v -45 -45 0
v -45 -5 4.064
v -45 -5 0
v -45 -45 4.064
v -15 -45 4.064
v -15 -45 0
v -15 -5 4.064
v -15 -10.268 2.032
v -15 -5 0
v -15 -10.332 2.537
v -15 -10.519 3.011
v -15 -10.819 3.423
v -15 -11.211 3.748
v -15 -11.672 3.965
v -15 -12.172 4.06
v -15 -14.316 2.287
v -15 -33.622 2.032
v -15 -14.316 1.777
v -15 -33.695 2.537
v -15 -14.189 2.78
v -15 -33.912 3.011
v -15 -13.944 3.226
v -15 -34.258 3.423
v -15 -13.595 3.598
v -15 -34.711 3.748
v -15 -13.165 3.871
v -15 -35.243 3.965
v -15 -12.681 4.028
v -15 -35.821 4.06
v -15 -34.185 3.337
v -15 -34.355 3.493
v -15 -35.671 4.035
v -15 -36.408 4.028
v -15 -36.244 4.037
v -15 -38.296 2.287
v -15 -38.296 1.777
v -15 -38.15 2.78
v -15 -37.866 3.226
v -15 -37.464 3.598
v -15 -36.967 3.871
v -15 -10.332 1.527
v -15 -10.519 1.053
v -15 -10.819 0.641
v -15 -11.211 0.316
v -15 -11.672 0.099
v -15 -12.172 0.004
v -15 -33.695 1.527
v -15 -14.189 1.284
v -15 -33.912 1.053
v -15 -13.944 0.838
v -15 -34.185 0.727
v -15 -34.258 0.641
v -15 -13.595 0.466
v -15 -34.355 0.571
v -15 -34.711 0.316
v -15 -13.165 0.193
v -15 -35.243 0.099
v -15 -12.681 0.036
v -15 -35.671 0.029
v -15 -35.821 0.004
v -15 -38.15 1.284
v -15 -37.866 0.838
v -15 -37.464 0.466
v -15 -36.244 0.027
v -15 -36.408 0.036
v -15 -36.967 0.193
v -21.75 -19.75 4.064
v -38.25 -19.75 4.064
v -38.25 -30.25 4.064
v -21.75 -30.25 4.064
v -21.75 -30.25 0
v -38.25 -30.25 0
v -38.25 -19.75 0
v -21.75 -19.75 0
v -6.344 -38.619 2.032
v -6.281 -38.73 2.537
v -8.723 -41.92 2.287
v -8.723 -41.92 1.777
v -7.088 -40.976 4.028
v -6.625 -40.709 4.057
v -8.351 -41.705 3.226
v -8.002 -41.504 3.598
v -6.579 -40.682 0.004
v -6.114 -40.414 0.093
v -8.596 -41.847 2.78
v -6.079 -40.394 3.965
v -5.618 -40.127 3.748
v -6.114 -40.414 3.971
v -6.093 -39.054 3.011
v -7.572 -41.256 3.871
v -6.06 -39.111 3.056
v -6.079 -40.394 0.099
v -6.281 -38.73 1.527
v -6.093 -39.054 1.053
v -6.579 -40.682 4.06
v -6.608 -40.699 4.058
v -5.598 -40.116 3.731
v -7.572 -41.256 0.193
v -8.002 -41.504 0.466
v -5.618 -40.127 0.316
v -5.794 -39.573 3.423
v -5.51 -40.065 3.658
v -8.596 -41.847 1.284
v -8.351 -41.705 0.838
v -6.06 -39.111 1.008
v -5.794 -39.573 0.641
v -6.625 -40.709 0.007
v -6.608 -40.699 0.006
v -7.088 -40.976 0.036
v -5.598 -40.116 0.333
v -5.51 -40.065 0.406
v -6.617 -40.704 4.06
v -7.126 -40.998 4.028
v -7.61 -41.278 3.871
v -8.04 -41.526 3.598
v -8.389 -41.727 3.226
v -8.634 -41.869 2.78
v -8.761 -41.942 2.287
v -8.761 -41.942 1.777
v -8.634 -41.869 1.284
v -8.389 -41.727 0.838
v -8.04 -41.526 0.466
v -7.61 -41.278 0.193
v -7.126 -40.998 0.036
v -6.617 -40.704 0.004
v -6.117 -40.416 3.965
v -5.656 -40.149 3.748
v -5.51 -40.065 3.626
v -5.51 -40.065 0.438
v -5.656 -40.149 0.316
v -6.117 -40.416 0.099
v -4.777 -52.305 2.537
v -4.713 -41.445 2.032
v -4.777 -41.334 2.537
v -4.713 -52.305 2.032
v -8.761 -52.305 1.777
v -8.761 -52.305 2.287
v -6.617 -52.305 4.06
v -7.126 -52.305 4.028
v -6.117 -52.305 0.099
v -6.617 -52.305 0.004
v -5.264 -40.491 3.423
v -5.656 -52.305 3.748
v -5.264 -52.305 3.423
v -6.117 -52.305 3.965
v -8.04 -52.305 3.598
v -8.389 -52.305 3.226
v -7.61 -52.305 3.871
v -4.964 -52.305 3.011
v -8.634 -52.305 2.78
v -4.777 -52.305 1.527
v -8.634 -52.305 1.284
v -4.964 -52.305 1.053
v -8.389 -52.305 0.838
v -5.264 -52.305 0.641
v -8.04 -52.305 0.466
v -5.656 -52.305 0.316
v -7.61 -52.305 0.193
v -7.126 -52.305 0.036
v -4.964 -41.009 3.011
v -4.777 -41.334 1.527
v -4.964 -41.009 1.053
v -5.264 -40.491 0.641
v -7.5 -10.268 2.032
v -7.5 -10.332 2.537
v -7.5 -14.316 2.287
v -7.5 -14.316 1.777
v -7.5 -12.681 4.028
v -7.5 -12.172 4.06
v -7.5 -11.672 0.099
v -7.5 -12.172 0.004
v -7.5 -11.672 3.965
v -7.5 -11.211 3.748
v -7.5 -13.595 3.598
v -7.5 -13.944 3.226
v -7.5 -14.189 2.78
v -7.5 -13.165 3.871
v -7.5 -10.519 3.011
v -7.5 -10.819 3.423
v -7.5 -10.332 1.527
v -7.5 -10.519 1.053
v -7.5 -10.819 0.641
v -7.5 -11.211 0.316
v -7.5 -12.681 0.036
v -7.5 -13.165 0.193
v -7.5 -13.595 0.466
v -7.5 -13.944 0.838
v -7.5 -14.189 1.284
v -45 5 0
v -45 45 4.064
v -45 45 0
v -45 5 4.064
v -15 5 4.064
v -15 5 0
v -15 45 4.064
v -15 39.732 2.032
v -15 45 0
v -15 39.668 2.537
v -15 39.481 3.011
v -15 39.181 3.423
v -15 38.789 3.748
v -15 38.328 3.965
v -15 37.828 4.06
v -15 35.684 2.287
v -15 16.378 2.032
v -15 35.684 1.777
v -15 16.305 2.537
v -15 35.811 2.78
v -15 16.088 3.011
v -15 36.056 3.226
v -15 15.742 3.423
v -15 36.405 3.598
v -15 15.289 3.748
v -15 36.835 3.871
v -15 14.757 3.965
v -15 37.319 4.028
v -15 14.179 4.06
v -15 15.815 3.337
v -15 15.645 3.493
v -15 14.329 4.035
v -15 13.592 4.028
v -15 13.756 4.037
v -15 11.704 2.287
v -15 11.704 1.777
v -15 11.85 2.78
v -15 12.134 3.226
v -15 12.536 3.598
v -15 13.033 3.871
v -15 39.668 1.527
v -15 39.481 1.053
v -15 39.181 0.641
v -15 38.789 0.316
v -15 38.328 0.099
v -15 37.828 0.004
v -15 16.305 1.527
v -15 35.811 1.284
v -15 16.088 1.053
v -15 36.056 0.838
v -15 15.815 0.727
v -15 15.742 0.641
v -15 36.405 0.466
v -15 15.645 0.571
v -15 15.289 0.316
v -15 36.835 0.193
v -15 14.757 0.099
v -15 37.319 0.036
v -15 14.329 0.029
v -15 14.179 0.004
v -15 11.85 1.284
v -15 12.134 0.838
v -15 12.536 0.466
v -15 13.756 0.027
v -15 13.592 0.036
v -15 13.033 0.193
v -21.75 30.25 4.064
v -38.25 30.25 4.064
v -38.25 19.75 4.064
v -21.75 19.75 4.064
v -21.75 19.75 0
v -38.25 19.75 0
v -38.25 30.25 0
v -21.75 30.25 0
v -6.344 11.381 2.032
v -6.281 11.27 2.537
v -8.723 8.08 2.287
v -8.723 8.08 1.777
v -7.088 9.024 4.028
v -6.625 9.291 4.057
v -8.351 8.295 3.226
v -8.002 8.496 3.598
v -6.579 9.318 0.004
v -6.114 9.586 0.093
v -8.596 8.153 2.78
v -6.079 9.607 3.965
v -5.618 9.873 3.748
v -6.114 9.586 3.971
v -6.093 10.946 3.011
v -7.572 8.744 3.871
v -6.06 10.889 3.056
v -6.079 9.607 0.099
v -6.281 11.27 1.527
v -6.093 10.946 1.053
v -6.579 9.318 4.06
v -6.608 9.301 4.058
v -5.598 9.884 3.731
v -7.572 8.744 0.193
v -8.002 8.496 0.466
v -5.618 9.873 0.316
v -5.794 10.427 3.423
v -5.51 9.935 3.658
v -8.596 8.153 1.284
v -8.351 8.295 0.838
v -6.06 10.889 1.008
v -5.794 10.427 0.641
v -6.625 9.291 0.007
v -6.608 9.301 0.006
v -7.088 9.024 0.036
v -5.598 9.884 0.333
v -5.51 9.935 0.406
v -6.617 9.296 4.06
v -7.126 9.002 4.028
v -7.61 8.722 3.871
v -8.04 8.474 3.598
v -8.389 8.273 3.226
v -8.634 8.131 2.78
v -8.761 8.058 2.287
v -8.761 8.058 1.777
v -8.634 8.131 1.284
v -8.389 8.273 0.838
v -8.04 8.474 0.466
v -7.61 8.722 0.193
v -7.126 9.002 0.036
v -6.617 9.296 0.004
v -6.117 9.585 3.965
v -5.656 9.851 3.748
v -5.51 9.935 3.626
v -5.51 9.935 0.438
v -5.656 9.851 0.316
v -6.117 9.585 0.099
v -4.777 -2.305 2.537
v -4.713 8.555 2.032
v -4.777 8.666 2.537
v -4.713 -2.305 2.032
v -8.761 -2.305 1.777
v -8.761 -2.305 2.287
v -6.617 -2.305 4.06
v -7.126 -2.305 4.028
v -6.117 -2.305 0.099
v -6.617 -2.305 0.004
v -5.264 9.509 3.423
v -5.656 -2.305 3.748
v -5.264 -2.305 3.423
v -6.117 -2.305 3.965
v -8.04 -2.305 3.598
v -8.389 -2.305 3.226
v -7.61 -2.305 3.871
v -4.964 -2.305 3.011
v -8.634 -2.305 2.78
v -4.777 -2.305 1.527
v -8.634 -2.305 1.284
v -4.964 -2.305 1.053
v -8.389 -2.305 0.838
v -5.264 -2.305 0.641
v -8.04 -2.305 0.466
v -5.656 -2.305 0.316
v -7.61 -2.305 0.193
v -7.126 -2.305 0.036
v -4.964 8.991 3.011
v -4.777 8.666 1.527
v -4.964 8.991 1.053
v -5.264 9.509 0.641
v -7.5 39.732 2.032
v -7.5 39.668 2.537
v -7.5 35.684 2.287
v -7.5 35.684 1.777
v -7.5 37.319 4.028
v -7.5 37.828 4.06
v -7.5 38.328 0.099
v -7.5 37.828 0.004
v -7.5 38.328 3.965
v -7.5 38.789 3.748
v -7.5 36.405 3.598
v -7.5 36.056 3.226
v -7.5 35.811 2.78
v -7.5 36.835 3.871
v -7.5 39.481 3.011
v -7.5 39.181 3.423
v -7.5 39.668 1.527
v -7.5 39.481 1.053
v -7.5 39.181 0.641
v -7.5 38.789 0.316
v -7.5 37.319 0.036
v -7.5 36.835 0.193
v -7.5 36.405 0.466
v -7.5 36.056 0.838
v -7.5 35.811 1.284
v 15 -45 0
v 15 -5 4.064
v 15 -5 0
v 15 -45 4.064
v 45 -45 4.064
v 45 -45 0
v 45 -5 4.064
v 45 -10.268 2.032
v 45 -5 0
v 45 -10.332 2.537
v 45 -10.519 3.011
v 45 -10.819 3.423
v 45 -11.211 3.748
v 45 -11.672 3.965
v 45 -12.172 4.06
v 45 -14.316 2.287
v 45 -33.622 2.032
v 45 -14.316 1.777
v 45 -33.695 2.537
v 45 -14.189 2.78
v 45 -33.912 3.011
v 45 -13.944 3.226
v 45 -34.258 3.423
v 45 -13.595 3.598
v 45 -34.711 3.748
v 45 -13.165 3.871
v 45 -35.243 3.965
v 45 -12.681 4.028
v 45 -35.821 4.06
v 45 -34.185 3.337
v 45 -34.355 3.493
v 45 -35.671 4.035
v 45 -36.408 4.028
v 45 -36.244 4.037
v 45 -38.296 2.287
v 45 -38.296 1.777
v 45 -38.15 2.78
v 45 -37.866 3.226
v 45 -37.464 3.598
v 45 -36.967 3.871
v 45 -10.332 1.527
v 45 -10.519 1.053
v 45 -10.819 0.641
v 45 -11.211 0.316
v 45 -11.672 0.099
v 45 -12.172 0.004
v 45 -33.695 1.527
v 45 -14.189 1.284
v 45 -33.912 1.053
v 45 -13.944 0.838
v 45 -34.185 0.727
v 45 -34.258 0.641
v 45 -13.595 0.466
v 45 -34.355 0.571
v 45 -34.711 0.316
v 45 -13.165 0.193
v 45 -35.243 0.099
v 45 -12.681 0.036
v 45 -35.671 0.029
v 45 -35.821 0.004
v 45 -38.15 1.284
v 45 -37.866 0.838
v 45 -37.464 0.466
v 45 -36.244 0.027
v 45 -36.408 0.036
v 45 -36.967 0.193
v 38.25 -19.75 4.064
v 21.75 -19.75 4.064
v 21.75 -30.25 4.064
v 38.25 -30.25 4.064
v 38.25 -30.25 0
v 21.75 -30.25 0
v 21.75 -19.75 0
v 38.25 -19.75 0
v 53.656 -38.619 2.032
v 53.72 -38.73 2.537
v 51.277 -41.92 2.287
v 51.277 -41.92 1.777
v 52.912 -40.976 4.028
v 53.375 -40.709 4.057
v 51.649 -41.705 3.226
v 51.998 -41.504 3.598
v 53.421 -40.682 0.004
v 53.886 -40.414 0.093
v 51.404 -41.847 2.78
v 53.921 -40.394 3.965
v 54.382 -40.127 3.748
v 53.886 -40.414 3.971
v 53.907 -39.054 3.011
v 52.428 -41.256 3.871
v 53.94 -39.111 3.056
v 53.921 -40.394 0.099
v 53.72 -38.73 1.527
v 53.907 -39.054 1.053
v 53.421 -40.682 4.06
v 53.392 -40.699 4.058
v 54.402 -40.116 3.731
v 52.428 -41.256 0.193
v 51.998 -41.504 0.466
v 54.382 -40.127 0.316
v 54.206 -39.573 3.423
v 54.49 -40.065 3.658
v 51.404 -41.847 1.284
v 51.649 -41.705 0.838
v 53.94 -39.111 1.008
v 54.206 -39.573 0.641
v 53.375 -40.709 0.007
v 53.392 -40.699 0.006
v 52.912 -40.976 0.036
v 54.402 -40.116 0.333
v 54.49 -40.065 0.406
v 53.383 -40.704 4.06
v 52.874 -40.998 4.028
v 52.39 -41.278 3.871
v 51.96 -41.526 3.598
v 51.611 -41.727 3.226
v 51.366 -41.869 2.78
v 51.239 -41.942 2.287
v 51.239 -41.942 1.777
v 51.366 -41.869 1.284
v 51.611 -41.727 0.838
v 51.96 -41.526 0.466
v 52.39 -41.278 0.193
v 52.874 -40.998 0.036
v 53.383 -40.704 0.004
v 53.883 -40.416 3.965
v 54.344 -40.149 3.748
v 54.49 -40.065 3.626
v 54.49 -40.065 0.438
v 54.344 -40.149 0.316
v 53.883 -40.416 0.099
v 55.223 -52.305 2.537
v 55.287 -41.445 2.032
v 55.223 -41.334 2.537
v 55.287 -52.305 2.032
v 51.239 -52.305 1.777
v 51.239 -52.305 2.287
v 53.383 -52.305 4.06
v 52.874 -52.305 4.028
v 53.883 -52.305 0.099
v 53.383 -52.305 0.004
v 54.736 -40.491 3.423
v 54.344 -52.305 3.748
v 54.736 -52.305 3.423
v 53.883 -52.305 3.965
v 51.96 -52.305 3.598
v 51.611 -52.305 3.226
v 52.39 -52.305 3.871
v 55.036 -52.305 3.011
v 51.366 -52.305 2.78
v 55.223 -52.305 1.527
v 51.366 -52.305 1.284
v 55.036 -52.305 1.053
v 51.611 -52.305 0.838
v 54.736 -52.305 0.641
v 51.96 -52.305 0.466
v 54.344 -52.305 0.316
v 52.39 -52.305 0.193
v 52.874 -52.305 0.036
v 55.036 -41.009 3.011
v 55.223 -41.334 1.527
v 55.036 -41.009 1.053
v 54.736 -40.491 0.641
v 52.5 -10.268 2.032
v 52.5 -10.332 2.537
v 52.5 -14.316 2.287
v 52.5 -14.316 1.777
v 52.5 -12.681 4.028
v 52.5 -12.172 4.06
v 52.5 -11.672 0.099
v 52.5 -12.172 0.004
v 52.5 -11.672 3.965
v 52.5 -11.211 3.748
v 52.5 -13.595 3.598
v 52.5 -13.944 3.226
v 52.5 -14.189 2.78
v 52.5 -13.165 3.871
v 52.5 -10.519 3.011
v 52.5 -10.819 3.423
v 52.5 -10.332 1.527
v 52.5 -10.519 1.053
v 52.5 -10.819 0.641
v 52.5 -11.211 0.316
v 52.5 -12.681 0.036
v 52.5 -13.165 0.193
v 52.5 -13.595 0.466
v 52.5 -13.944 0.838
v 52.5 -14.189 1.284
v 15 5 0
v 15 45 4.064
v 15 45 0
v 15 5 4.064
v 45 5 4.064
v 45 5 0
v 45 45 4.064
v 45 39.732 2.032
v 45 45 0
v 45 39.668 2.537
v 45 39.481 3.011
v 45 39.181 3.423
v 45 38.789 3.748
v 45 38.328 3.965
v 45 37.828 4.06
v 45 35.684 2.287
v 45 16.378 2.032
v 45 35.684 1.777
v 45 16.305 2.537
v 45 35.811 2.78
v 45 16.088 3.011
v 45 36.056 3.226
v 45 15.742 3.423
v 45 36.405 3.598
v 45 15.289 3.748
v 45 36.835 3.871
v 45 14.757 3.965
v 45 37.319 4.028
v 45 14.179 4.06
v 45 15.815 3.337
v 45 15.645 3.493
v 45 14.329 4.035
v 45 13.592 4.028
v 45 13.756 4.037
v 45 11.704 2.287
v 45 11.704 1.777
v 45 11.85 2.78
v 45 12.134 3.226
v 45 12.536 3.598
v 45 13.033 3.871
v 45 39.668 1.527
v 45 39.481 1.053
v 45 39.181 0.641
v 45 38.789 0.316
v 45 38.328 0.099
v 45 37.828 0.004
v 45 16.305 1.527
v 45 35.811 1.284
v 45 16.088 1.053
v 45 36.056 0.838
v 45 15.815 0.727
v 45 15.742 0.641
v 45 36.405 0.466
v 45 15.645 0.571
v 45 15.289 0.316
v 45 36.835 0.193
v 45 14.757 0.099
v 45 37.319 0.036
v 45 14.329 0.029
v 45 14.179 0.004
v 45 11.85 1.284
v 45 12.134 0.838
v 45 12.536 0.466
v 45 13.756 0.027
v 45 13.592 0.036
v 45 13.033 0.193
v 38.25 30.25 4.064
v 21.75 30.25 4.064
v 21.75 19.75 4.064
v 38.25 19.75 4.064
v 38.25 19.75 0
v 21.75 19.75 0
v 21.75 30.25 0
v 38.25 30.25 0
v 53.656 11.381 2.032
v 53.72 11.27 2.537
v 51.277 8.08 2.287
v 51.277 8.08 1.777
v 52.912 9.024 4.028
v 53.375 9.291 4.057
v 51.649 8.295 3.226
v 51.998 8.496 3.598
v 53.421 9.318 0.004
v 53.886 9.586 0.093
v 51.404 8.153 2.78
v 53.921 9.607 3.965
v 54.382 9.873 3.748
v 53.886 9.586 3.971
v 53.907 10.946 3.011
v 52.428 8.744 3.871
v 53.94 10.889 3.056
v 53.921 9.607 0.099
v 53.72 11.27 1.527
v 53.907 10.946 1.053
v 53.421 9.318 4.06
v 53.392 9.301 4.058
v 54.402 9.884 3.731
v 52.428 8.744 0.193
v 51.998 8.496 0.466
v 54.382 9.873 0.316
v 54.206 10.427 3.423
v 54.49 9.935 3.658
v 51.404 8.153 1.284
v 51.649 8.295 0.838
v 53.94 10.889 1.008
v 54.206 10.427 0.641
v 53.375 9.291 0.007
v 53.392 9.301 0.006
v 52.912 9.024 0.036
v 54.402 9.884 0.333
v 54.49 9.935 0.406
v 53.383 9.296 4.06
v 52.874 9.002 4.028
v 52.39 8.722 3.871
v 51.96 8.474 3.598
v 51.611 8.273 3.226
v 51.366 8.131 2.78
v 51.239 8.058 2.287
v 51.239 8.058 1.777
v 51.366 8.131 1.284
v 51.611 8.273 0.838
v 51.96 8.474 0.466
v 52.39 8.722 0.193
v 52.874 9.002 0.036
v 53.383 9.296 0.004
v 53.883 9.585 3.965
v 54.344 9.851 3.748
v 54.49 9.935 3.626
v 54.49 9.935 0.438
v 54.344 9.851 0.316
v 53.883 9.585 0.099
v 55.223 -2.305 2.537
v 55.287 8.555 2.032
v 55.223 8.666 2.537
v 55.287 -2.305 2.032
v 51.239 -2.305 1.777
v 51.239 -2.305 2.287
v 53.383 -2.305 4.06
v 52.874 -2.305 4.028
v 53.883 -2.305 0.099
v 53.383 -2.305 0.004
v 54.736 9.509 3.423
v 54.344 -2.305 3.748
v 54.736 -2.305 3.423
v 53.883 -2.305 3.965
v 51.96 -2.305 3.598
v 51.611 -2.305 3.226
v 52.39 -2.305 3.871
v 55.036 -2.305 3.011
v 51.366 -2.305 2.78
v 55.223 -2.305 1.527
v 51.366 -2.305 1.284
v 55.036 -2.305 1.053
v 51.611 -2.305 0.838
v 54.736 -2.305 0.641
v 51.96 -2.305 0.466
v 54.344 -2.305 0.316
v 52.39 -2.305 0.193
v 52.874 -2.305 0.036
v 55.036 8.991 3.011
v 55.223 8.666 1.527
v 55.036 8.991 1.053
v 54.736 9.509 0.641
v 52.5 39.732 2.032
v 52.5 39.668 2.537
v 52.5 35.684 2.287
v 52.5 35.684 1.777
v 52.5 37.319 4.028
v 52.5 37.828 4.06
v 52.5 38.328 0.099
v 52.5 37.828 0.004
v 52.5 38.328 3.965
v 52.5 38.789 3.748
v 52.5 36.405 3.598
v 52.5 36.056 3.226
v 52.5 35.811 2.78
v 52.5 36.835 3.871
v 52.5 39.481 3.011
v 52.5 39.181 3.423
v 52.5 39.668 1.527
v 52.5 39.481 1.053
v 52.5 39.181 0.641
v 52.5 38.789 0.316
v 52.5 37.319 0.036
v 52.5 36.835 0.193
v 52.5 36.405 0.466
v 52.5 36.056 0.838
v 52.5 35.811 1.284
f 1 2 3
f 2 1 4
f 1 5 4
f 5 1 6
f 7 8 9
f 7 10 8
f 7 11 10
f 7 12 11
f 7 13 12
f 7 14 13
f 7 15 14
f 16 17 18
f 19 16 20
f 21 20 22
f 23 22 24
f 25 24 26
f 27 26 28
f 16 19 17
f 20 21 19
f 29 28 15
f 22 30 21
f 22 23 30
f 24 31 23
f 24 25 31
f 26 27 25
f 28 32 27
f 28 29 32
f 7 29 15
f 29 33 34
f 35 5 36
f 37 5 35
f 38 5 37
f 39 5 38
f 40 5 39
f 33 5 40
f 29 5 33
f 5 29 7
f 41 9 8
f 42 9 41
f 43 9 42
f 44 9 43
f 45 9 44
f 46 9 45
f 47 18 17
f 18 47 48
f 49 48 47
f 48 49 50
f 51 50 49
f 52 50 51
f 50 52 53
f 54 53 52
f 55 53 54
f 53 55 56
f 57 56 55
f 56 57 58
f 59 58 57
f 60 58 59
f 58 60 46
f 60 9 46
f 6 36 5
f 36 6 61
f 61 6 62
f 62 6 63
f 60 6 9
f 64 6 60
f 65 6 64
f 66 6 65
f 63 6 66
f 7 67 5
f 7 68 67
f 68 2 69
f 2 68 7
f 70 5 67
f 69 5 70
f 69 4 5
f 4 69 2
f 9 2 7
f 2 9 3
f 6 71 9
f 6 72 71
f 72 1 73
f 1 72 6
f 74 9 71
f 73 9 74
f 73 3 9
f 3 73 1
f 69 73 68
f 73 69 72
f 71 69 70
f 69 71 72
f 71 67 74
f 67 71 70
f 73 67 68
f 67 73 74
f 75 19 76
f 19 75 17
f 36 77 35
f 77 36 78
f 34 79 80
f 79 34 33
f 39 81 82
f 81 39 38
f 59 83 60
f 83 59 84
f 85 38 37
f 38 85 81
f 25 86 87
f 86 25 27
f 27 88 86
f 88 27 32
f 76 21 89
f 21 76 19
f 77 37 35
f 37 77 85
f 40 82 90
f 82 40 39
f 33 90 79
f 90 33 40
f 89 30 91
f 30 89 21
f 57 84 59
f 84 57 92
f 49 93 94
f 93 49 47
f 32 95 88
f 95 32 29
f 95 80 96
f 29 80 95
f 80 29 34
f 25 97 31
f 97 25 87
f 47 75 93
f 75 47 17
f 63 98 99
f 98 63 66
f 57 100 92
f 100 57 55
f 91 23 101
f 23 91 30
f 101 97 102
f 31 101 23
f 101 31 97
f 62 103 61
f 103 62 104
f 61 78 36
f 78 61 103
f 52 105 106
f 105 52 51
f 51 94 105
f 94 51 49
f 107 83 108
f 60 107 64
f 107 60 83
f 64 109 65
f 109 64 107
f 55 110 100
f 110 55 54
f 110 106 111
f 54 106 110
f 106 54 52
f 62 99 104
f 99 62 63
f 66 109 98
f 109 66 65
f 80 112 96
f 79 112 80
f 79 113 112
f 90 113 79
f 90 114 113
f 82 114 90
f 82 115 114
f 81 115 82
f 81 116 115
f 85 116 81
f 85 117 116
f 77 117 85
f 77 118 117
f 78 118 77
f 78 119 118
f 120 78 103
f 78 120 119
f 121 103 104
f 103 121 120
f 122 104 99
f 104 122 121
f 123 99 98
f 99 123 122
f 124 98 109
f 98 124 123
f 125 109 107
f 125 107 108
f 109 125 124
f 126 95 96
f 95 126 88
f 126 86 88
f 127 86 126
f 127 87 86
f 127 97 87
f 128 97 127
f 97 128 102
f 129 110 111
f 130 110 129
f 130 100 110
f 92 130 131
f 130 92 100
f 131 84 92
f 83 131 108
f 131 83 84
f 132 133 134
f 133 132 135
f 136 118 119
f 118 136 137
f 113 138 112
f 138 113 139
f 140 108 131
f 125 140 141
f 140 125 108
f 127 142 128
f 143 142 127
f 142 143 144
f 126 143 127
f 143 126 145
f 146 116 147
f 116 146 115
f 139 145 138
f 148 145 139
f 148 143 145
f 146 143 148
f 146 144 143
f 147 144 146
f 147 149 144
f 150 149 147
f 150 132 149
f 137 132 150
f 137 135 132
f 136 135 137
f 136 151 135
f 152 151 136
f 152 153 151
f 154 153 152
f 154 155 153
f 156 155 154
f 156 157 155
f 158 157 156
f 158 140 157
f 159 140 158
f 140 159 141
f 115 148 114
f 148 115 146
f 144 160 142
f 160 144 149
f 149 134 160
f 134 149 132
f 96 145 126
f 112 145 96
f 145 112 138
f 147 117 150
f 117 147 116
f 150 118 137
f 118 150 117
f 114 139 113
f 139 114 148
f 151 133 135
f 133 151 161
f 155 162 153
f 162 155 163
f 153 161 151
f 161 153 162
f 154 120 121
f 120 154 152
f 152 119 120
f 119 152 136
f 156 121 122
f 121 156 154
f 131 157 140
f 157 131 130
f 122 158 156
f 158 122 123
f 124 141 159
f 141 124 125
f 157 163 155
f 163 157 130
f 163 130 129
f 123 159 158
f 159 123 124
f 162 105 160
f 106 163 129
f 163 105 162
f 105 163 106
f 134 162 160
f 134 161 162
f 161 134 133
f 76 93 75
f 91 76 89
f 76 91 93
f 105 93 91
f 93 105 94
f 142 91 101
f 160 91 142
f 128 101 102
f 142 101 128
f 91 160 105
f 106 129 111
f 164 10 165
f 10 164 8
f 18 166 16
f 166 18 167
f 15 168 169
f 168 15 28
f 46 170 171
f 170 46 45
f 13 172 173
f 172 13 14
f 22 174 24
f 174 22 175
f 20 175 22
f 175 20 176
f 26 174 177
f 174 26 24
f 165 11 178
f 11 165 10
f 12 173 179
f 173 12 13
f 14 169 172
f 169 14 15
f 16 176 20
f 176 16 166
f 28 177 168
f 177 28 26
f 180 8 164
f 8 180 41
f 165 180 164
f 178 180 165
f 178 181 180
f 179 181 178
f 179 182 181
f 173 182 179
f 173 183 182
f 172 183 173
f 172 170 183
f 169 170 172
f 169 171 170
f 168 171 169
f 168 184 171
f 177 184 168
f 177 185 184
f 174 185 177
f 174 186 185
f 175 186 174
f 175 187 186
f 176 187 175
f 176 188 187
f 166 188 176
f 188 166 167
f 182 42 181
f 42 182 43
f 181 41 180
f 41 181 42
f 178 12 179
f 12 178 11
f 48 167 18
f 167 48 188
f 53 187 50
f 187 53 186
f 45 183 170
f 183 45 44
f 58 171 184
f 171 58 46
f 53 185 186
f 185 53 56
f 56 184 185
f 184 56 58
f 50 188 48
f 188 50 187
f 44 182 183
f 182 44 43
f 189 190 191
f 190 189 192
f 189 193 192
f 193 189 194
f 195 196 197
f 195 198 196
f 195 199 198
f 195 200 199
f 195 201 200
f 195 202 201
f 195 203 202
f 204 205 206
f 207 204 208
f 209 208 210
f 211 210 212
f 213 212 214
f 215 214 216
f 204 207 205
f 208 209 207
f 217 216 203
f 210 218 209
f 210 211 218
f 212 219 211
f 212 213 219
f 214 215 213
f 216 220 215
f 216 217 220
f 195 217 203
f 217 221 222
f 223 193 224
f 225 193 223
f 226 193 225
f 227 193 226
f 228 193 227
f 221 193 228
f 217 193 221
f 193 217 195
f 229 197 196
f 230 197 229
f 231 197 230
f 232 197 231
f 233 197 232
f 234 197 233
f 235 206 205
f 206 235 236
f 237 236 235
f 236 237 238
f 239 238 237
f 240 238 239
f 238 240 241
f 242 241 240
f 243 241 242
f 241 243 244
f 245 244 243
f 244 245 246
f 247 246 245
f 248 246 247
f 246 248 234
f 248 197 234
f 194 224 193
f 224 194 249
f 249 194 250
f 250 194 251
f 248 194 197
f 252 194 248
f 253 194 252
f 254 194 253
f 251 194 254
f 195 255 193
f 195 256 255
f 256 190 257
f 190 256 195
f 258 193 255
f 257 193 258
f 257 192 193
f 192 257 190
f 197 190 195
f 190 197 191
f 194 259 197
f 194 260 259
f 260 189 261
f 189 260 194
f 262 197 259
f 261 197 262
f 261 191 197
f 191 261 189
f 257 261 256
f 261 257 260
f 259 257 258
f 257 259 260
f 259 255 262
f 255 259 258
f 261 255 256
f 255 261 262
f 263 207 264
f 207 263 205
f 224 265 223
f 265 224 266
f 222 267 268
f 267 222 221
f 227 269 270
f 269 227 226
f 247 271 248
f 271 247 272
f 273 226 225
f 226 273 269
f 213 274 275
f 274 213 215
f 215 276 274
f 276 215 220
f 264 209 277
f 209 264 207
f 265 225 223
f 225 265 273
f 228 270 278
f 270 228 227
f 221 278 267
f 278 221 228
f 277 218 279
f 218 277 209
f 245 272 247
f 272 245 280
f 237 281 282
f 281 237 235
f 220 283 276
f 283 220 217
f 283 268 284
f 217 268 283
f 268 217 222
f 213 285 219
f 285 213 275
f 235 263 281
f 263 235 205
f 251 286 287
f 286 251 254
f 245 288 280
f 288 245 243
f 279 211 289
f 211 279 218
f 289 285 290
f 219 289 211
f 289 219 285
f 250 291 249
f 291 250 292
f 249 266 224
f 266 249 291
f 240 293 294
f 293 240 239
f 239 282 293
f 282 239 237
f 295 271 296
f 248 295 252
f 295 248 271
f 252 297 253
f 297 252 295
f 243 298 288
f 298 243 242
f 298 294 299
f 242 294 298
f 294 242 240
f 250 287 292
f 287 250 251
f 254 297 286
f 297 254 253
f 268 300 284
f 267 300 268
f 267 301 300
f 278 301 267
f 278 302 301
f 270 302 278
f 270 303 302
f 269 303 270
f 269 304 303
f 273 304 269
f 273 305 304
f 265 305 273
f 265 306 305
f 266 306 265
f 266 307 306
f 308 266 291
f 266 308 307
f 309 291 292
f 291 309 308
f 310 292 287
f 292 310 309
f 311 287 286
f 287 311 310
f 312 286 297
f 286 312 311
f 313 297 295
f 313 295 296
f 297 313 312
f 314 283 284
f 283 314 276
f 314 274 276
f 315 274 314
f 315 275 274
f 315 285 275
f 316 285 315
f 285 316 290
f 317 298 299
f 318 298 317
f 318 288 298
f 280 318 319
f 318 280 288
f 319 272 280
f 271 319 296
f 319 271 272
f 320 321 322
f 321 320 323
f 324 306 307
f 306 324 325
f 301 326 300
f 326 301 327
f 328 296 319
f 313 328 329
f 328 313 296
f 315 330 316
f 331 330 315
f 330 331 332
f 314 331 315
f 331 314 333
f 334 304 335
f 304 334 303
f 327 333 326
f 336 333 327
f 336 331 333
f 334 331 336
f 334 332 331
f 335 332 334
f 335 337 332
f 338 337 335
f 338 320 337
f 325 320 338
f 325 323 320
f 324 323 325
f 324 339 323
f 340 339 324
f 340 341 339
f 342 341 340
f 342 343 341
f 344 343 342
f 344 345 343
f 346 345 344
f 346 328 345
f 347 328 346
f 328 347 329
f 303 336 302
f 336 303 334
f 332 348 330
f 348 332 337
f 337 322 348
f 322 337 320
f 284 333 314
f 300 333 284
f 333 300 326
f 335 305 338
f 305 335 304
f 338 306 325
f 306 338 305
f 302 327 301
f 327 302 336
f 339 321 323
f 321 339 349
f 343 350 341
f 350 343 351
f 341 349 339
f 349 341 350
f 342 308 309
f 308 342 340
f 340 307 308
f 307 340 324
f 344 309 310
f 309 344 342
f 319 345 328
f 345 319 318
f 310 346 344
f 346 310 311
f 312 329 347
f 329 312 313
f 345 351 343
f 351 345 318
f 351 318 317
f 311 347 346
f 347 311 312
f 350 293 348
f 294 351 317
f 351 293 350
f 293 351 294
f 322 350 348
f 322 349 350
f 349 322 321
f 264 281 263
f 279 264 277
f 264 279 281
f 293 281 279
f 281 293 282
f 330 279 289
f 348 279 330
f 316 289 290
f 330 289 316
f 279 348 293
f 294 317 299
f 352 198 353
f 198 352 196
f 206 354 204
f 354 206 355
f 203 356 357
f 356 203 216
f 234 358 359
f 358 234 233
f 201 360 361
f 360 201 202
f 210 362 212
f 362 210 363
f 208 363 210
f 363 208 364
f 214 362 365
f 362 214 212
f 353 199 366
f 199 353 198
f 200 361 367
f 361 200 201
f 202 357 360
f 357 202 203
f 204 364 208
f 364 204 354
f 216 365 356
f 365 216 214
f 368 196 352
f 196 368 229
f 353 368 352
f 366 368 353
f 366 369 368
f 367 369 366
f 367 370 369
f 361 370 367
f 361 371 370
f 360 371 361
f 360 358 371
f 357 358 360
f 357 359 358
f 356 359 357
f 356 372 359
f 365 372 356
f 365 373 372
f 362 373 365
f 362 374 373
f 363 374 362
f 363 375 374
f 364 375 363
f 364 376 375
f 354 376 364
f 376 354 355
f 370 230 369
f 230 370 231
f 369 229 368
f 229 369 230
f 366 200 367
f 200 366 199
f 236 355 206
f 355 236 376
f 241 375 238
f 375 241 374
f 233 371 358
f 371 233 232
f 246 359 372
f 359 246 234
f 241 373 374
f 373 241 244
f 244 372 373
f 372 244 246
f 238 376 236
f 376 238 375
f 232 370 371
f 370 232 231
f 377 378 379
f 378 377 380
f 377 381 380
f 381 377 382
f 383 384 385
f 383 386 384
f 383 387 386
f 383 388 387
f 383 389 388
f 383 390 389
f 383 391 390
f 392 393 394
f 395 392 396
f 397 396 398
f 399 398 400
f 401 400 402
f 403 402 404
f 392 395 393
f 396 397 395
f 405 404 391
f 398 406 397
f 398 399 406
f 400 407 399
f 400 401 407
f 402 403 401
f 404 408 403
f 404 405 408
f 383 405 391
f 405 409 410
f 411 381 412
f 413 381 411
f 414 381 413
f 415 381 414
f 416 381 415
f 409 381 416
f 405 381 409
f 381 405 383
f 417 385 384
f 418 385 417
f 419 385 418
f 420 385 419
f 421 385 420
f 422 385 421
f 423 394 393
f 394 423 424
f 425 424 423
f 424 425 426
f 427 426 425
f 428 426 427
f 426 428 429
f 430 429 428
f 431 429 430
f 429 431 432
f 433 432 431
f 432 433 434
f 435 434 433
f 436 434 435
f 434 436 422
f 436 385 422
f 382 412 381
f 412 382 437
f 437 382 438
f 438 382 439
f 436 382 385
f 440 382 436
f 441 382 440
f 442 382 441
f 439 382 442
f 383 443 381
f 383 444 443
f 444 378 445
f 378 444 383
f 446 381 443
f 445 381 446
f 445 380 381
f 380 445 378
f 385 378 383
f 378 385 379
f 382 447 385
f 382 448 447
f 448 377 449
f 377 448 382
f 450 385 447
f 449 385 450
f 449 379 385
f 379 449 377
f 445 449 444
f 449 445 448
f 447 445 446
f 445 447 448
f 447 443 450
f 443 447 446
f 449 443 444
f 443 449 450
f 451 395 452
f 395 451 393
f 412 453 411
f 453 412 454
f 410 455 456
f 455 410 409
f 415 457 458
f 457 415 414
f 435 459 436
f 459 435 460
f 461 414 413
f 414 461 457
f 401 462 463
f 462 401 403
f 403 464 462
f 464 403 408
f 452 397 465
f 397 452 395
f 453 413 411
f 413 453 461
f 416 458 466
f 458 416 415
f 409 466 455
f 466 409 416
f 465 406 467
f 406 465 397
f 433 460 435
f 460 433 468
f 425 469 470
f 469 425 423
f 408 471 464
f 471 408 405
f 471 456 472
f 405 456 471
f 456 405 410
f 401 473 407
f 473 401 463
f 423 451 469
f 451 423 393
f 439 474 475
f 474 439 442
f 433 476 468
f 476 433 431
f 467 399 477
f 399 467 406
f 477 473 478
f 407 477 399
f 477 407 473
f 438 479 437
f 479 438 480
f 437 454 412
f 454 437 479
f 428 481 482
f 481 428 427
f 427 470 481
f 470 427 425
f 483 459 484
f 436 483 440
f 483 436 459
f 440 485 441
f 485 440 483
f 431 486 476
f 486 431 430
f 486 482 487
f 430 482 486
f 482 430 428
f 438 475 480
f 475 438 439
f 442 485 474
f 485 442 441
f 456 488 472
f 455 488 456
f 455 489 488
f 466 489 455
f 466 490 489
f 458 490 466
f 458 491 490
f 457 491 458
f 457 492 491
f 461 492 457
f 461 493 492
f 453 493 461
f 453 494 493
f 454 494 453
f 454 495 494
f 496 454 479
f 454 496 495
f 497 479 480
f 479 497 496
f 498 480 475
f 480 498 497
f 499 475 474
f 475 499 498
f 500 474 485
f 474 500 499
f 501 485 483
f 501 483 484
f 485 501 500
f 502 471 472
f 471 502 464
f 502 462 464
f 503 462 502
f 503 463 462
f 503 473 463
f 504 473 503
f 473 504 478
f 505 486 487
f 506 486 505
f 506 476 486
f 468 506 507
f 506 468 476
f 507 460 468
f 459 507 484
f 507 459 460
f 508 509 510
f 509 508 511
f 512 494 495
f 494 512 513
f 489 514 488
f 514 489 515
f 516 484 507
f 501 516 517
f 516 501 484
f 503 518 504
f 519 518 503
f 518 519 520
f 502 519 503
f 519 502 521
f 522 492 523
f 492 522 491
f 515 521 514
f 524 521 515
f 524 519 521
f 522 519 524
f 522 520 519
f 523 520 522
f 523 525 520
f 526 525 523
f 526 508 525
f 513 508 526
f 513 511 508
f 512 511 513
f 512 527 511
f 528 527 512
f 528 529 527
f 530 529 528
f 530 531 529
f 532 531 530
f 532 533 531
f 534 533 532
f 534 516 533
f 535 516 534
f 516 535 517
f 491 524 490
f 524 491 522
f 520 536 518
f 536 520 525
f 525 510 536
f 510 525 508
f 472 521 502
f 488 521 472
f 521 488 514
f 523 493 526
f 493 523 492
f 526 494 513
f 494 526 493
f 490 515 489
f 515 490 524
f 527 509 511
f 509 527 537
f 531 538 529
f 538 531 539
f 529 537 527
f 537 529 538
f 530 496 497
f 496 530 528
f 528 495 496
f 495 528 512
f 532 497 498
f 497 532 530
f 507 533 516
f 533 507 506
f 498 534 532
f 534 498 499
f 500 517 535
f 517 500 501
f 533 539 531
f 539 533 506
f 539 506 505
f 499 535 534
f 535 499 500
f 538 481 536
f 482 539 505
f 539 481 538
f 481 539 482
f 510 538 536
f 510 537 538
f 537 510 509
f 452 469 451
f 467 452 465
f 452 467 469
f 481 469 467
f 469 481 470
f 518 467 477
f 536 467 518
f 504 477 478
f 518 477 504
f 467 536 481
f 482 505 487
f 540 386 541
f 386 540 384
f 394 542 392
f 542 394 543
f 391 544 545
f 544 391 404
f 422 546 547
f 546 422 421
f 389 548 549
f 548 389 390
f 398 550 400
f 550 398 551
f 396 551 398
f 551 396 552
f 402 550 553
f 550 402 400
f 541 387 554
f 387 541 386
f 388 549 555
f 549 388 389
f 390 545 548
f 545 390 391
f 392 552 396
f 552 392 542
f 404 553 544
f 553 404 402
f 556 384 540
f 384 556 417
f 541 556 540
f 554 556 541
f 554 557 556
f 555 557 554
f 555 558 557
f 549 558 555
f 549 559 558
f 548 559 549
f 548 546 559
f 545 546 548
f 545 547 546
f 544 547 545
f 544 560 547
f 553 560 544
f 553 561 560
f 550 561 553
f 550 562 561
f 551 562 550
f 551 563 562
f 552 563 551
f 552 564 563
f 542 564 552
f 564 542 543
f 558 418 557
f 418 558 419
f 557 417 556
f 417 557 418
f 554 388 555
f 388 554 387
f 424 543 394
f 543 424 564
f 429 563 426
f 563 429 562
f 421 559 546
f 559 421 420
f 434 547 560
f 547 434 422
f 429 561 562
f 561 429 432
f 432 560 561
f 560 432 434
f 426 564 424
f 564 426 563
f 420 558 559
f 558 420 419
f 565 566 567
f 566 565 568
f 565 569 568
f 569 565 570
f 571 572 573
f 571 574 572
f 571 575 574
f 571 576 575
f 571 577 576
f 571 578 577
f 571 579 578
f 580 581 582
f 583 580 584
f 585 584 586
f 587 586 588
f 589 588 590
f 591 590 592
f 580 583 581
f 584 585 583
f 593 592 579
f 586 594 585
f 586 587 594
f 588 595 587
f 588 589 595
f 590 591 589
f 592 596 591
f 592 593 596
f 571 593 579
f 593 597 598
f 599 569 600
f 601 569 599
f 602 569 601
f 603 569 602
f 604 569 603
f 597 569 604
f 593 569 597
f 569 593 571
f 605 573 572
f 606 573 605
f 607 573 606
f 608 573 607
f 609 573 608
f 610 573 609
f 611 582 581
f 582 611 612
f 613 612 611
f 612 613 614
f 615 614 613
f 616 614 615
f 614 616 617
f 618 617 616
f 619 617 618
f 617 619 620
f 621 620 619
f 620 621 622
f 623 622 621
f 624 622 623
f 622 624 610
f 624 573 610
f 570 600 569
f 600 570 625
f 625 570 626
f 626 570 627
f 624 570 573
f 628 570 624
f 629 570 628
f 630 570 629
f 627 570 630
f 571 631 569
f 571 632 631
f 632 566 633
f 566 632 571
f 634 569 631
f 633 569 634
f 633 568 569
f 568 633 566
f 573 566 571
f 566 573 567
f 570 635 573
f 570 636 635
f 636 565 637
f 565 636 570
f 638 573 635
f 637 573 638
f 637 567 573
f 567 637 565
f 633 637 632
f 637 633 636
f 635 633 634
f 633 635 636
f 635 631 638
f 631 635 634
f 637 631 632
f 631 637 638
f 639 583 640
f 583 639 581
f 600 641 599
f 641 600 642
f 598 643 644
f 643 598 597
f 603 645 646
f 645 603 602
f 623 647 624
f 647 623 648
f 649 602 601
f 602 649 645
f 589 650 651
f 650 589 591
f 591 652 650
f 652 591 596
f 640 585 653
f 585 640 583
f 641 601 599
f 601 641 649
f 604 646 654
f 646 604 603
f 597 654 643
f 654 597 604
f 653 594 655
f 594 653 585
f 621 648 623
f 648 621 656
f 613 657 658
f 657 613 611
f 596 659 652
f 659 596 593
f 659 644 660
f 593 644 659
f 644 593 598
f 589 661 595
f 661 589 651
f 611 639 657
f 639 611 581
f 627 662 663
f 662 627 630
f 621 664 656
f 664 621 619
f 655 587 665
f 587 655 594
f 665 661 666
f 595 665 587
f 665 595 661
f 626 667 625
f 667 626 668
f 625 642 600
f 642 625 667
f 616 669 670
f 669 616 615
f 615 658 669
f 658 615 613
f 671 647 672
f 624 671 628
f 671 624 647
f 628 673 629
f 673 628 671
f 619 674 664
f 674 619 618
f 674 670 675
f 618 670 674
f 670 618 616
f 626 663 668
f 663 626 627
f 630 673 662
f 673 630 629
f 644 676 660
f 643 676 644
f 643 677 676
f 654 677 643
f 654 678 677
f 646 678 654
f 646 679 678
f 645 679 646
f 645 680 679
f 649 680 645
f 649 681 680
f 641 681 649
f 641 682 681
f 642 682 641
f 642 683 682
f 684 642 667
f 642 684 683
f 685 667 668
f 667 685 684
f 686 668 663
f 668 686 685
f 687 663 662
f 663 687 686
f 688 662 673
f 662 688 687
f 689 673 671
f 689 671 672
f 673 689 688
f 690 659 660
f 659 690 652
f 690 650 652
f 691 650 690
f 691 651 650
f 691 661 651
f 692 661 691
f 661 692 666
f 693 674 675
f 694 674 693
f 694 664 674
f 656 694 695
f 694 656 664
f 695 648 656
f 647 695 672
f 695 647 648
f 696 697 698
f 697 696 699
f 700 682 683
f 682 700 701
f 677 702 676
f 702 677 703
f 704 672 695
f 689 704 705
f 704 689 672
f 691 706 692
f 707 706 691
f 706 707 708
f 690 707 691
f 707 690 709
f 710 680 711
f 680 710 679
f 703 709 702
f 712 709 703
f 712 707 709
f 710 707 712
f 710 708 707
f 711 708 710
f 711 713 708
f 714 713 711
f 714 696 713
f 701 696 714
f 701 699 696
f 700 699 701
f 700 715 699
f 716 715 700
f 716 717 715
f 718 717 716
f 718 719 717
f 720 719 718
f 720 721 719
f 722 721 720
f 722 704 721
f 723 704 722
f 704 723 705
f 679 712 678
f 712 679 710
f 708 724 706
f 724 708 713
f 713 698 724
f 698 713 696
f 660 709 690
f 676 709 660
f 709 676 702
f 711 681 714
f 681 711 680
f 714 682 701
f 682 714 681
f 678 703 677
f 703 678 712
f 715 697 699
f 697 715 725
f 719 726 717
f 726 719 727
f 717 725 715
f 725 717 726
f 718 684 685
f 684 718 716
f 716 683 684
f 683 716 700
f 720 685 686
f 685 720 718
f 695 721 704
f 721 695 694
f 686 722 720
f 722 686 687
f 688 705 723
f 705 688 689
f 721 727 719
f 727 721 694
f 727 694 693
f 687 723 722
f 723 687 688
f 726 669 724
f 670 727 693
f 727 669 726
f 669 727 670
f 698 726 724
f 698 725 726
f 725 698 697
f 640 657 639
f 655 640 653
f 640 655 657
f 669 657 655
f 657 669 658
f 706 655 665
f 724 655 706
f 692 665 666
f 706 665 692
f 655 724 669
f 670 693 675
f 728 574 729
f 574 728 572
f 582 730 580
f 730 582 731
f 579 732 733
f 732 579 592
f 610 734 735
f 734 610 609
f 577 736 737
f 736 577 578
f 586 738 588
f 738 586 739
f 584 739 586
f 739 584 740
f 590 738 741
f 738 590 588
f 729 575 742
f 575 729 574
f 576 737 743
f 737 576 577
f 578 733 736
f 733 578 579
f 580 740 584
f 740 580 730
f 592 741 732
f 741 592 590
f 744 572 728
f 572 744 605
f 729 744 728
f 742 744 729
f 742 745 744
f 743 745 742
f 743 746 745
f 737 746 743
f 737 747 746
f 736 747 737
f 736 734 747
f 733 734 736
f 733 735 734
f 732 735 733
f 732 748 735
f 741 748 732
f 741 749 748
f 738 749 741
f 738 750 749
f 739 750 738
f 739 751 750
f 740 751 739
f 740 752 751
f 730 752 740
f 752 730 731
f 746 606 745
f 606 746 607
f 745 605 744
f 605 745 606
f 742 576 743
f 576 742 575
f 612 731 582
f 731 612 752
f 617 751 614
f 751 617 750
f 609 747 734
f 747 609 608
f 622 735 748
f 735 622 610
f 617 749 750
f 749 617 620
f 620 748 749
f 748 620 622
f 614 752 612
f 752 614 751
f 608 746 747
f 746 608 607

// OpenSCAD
DIAMETER = 0.16*25.4;
OFFSET = 0.325*25.4; // from back of wall to center of vertical peg
VHEIGHT = 0.575*25.4;


translate([-30,-25,0]) bracket();
translate([-30,25,0]) bracket();
translate([30,-25,0]) bracket();
translate([30,25,0]) bracket();

module bracket()
{
 translate([0,0,DIAMETER/2])
  rotate([90,0,0])
   union()
   {   
    difference()
    {
     base();
     hole();
    }
    bottomPeg();
    smoothedTopPeg();
   }
}
module base()
{
    cube([30, DIAMETER, 40], center=true);
}

module hole()
{
    cube([16.5, DIAMETER+5, 10.5], center=true); 
}

module bottomPeg()
{
   translate([18.5,0,-25.4/2])
    rotate([0,90,0])
     cylinder(d=DIAMETER, h=8, center=true, $fn=25);    
}

module topPeg()
{ 
 difference()
 {   
  translate([18,0,25.4/2])
   rotate([0,-30,0]) 
    rotate([0,90,0])
     cylinder(d=DIAMETER, h=15, center=true, $fn=25);    
  cleave();
 }
 intersection()
 {
  translate([15+OFFSET,0,VHEIGHT/2+25.4/2])
   cylinder(d=DIAMETER, h=VHEIGHT, center=true, $fn=25);
  cleave();
 }
}

module cleave()
{
 translate([138,0,65])   
  rotate([0,-60,0])
   cube(200, center=true);  
}

module smoothedTopPeg()
{
 difference()
 {
  topPeg();
  translate([36,0,15])   
   rotate([0,30,0])
    cube(20, center=true); 
 }
}


    
